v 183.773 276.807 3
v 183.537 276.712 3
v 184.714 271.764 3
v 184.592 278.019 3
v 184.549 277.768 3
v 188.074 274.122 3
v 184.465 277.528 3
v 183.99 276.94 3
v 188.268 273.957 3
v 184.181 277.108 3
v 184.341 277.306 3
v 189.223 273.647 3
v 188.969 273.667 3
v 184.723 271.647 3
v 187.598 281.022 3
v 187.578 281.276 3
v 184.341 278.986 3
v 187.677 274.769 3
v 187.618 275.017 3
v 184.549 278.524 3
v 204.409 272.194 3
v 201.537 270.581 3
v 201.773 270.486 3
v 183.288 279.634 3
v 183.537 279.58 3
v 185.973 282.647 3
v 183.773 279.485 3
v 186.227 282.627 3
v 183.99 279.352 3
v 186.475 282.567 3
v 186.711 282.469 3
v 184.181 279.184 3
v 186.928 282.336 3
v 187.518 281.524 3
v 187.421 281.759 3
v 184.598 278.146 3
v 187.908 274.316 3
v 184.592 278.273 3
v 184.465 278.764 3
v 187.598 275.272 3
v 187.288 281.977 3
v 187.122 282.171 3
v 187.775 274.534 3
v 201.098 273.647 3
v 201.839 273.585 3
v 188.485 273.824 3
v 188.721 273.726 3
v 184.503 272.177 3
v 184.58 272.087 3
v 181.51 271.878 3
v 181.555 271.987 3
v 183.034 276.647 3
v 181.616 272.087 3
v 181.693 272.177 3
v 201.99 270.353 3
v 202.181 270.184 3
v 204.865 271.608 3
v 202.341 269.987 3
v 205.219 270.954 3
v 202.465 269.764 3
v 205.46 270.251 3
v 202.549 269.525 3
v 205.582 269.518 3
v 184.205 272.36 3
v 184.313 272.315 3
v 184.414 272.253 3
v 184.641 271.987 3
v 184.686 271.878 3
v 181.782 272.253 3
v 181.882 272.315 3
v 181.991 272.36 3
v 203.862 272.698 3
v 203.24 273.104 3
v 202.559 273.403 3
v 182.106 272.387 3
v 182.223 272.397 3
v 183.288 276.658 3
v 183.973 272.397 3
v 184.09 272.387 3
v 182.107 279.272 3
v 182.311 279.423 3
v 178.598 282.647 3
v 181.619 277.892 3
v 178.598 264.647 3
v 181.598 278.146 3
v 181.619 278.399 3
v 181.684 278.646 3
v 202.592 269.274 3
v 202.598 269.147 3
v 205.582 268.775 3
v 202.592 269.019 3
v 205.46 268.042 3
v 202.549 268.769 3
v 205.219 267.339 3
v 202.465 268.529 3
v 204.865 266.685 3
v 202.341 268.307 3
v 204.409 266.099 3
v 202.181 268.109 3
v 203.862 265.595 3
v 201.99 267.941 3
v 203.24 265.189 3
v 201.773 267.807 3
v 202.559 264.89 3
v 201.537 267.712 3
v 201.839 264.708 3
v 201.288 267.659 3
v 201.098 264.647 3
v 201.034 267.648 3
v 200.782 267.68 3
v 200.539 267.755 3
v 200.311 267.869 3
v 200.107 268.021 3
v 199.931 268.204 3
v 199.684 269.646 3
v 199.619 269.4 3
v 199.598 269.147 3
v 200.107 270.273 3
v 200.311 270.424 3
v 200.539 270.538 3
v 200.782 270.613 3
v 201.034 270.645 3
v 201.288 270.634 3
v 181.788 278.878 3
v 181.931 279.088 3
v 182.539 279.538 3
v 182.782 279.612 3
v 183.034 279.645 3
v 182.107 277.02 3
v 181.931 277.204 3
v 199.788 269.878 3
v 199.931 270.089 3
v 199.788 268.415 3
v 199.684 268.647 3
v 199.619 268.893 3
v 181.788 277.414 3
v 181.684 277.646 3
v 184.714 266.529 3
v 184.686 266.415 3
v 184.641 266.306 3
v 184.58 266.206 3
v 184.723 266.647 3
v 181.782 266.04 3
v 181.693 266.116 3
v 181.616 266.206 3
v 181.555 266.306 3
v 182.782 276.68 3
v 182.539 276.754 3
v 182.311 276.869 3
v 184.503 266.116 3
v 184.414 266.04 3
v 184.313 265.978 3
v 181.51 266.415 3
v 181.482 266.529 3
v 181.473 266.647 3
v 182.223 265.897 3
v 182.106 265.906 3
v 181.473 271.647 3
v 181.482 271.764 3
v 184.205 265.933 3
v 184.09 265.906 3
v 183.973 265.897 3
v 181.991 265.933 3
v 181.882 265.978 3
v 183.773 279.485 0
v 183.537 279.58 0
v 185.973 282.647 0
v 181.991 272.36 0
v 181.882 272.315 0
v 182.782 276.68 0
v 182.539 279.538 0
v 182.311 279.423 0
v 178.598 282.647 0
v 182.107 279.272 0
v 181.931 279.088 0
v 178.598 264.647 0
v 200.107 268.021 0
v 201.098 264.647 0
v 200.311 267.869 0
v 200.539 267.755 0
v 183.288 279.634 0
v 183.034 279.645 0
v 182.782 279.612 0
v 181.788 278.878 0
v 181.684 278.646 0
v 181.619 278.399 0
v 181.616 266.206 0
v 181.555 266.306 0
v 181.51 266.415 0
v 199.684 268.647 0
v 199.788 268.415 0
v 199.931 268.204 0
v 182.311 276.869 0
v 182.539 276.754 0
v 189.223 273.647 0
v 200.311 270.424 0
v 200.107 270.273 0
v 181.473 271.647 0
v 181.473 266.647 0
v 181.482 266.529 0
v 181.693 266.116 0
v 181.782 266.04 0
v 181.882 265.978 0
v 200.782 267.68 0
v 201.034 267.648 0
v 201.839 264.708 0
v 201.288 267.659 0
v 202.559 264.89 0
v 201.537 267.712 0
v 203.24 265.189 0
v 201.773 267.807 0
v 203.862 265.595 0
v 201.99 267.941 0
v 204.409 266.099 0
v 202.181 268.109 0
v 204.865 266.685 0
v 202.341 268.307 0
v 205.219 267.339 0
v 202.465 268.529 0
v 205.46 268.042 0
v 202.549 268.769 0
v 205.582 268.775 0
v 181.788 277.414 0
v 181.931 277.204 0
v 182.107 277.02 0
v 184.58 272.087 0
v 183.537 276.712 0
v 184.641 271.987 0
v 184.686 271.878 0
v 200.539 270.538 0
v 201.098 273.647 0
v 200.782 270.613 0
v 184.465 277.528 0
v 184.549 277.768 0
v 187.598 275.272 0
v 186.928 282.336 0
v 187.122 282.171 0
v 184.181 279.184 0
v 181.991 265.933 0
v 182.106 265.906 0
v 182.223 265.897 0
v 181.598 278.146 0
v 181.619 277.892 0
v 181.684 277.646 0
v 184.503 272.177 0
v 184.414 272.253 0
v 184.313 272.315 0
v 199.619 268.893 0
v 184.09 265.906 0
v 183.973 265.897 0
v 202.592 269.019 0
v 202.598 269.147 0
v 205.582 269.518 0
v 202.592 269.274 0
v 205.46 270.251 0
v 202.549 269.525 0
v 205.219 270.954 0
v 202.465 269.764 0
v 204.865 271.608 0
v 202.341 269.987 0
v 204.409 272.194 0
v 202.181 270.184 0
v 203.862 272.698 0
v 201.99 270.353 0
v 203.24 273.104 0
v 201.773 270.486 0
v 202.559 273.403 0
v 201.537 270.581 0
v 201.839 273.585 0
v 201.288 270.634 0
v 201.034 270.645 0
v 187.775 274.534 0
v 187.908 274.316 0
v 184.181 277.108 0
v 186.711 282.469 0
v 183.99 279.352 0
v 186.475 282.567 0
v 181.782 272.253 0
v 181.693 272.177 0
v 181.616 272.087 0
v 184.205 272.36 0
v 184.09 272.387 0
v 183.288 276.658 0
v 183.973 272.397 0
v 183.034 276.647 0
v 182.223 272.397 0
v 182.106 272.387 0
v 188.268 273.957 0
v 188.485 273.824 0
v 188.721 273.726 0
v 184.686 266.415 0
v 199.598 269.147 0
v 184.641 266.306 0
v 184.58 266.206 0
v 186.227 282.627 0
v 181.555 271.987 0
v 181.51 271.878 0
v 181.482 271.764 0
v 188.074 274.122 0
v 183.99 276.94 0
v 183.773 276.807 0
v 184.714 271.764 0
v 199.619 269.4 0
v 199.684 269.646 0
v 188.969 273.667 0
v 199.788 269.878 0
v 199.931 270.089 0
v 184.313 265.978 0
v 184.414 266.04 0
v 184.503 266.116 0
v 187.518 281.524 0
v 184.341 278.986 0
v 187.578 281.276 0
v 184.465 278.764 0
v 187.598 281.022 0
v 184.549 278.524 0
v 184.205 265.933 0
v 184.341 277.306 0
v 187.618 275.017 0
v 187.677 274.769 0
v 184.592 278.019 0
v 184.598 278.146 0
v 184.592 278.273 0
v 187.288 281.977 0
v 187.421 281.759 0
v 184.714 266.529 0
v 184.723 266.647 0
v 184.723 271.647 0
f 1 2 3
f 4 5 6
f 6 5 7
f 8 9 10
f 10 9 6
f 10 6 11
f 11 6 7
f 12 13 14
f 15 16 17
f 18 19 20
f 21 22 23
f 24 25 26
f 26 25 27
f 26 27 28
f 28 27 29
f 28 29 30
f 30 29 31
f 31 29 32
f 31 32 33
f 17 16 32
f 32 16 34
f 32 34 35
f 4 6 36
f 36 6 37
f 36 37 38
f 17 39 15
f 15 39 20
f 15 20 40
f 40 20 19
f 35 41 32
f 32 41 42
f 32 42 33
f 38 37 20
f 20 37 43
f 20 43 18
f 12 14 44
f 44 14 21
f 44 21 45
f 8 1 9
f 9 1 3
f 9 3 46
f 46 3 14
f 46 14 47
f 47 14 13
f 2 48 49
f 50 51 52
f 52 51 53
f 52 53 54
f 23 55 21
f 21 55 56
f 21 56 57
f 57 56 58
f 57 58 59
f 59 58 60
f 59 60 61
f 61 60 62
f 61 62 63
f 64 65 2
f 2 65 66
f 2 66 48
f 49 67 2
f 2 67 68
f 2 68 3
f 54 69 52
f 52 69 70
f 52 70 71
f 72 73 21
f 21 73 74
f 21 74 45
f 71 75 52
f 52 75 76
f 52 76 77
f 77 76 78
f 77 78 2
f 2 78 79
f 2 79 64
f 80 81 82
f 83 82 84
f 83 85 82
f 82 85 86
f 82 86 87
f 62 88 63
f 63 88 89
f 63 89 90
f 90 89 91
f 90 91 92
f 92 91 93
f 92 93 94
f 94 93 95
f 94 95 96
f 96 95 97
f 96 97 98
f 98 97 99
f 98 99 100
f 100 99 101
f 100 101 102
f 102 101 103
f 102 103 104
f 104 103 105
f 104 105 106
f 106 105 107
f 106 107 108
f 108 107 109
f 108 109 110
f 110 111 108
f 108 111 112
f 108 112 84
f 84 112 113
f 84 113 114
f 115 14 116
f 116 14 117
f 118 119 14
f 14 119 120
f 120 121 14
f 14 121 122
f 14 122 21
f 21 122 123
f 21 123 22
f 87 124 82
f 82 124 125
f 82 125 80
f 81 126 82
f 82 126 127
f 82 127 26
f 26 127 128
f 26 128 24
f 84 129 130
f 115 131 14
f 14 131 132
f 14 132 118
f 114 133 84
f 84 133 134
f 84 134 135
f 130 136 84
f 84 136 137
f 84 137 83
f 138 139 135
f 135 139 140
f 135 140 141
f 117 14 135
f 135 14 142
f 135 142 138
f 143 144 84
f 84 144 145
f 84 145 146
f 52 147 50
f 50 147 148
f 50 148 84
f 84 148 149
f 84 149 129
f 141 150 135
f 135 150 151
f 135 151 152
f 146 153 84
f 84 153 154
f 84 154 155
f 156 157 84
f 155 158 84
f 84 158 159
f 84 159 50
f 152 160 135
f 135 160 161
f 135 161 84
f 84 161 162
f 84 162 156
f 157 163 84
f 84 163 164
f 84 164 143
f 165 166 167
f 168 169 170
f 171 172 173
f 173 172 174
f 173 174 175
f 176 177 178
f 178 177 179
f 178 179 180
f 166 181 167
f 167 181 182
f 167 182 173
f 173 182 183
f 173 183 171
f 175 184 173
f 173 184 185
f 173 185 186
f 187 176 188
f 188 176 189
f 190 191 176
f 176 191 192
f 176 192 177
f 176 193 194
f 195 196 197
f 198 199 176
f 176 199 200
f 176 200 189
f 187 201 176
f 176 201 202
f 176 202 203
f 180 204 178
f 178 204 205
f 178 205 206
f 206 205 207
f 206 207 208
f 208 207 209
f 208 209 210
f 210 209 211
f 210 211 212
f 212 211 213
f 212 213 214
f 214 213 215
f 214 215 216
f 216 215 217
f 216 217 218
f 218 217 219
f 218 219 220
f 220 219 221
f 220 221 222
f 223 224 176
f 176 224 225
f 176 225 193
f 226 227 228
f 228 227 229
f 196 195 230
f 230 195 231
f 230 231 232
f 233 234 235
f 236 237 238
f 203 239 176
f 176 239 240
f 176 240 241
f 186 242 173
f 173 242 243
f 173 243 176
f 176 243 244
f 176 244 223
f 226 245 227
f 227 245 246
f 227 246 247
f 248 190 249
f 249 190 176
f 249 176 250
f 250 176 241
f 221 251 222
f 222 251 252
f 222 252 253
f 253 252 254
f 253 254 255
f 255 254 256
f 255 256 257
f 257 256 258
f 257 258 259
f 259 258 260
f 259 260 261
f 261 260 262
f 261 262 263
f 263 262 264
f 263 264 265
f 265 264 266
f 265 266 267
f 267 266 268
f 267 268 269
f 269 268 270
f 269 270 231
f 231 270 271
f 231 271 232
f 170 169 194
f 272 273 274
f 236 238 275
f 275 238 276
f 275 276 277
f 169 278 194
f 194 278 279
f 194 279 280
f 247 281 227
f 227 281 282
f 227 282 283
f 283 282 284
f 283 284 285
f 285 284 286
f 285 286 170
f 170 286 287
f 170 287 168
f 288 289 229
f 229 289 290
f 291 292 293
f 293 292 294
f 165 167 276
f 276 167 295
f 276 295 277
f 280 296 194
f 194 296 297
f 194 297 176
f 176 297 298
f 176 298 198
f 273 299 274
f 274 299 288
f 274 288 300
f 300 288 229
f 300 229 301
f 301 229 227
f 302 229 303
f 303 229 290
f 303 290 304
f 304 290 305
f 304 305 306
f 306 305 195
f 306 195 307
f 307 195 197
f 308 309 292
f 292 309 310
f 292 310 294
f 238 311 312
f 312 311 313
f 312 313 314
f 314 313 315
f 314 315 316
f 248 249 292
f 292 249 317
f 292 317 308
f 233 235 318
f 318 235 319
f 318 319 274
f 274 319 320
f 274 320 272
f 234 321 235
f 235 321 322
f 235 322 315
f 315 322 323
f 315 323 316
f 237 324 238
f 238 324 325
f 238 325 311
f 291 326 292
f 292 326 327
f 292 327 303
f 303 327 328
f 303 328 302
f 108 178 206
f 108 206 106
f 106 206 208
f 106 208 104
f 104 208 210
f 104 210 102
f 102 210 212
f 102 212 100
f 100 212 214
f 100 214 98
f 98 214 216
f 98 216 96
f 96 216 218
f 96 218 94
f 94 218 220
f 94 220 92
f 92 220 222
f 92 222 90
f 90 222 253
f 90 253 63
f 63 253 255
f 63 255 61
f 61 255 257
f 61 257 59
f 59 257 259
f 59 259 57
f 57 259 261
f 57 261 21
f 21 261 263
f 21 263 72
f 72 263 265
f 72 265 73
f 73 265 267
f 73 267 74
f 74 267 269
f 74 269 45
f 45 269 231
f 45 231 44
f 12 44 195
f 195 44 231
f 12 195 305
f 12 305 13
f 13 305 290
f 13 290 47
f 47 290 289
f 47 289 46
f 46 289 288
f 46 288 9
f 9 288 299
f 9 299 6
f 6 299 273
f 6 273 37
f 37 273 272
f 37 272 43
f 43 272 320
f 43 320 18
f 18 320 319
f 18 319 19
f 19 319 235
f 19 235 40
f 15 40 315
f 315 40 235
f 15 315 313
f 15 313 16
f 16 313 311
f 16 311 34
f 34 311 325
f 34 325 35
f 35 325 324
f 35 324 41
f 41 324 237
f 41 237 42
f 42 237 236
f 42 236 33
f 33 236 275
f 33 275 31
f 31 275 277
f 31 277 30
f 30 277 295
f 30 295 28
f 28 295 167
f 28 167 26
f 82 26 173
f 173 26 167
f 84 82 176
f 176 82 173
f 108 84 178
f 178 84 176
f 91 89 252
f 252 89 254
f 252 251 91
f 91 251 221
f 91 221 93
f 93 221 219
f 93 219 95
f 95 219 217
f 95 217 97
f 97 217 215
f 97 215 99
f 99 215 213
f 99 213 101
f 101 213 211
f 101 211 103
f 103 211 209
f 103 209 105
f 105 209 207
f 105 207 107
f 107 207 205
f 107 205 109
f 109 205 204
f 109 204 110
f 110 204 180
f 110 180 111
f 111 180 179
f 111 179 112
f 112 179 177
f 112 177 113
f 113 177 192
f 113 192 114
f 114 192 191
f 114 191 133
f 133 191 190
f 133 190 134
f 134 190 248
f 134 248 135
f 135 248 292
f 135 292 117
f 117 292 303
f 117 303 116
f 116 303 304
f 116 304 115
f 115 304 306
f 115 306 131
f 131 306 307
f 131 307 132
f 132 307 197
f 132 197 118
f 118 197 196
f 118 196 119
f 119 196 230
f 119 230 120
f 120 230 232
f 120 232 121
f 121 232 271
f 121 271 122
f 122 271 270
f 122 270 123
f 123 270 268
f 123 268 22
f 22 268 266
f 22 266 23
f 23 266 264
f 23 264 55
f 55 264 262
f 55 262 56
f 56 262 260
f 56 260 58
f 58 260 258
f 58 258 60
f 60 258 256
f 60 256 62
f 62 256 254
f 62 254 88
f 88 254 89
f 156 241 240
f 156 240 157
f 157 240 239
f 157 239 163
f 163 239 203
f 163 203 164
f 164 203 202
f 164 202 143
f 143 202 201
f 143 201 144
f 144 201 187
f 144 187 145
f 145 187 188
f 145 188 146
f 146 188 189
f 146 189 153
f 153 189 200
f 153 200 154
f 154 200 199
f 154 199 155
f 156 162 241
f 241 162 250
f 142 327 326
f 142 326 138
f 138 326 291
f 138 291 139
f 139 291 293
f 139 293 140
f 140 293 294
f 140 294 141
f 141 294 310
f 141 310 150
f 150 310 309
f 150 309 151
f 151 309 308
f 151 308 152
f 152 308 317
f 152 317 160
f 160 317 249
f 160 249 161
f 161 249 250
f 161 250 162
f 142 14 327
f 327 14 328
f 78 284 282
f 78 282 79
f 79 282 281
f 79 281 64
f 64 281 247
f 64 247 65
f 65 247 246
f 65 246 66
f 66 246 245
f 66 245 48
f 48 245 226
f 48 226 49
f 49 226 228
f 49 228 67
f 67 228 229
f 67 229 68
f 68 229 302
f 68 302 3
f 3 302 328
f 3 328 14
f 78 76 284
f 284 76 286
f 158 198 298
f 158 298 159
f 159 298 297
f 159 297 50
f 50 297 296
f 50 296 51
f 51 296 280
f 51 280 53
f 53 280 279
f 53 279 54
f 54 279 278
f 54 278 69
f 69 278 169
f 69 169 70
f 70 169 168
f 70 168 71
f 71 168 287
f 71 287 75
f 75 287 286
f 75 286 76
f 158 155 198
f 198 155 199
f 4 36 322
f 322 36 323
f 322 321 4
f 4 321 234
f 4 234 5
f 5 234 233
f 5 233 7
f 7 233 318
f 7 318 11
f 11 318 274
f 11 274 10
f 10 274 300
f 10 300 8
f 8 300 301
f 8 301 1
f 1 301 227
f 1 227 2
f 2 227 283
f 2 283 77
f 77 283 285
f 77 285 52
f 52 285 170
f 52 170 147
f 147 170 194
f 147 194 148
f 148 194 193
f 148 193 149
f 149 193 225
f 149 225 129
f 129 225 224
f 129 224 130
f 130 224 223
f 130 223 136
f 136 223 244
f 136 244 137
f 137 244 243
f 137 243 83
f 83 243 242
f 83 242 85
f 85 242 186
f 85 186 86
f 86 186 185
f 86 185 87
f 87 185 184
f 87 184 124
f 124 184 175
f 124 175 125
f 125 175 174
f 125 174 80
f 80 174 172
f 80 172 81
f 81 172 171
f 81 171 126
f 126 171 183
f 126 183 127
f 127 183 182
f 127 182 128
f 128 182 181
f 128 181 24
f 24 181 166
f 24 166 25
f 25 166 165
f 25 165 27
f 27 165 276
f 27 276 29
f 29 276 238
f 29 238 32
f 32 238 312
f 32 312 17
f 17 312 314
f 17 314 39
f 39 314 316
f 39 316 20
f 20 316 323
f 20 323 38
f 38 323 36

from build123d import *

# Parameters (mm, degrees)
MODEL_R                 = 1.5
SALIENTE_EXTRUIR1_DEPTH = 3


with BuildPart() as part:
    # Model → Saliente-Extruir1 (new body)
    with BuildSketch(Plane.XY):
        with BuildLine():
            Line((185.972853309, 282.646547335), (178.597853309, 282.646547335))
            Line((178.597853309, 282.646547335), (178.597853309, 264.646547335))
            Line((178.597853309, 264.646547335), (201.097853309, 264.646547335))
            ThreePointArc((201.097853309, 264.646547335), (205.597853309, 269.146547335), (201.097853309, 273.646547335))
            Line((201.097853309, 273.646547335), (189.222853309, 273.646547335))
            ThreePointArc((189.222853309, 273.646547335), (188.07380479, 274.122498816), (187.597853309, 275.271547335))
            Line((187.597853309, 275.271547335), (187.597853309, 281.021547335))
            ThreePointArc((187.597853309, 281.021547335), (187.121901829, 282.170595855), (185.972853309, 282.646547335))
        make_face()
        with Locations((201.097853309, 269.146547335)):
            Circle(MODEL_R, mode=Mode.SUBTRACT)
        with Locations((183.097853309, 278.145968764)):
            Circle(MODEL_R, mode=Mode.SUBTRACT)
        with BuildLine():
            Line((182.222853309, 265.896547335), (183.972853309, 265.896547335))
            ThreePointArc((183.972853309, 265.896547335), (184.503183395, 266.116217249), (184.722853309, 266.646547335))
            Line((184.722853309, 266.646547335), (184.722853309, 271.646547335))
            ThreePointArc((184.722853309, 271.646547335), (184.503183395, 272.176877421), (183.972853309, 272.396547335))
            Line((183.972853309, 272.396547335), (182.222853309, 272.396547335))
            ThreePointArc((182.222853309, 272.396547335), (181.692523223, 272.176877421), (181.472853309, 271.646547335))
            Line((181.472853309, 271.646547335), (181.472853309, 266.646547335))
            ThreePointArc((181.472853309, 266.646547335), (181.692523223, 266.116217249), (182.222853309, 265.896547335))
        make_face(mode=Mode.SUBTRACT)
    extrude(amount=SALIENTE_EXTRUIR1_DEPTH)


solid = part.part
